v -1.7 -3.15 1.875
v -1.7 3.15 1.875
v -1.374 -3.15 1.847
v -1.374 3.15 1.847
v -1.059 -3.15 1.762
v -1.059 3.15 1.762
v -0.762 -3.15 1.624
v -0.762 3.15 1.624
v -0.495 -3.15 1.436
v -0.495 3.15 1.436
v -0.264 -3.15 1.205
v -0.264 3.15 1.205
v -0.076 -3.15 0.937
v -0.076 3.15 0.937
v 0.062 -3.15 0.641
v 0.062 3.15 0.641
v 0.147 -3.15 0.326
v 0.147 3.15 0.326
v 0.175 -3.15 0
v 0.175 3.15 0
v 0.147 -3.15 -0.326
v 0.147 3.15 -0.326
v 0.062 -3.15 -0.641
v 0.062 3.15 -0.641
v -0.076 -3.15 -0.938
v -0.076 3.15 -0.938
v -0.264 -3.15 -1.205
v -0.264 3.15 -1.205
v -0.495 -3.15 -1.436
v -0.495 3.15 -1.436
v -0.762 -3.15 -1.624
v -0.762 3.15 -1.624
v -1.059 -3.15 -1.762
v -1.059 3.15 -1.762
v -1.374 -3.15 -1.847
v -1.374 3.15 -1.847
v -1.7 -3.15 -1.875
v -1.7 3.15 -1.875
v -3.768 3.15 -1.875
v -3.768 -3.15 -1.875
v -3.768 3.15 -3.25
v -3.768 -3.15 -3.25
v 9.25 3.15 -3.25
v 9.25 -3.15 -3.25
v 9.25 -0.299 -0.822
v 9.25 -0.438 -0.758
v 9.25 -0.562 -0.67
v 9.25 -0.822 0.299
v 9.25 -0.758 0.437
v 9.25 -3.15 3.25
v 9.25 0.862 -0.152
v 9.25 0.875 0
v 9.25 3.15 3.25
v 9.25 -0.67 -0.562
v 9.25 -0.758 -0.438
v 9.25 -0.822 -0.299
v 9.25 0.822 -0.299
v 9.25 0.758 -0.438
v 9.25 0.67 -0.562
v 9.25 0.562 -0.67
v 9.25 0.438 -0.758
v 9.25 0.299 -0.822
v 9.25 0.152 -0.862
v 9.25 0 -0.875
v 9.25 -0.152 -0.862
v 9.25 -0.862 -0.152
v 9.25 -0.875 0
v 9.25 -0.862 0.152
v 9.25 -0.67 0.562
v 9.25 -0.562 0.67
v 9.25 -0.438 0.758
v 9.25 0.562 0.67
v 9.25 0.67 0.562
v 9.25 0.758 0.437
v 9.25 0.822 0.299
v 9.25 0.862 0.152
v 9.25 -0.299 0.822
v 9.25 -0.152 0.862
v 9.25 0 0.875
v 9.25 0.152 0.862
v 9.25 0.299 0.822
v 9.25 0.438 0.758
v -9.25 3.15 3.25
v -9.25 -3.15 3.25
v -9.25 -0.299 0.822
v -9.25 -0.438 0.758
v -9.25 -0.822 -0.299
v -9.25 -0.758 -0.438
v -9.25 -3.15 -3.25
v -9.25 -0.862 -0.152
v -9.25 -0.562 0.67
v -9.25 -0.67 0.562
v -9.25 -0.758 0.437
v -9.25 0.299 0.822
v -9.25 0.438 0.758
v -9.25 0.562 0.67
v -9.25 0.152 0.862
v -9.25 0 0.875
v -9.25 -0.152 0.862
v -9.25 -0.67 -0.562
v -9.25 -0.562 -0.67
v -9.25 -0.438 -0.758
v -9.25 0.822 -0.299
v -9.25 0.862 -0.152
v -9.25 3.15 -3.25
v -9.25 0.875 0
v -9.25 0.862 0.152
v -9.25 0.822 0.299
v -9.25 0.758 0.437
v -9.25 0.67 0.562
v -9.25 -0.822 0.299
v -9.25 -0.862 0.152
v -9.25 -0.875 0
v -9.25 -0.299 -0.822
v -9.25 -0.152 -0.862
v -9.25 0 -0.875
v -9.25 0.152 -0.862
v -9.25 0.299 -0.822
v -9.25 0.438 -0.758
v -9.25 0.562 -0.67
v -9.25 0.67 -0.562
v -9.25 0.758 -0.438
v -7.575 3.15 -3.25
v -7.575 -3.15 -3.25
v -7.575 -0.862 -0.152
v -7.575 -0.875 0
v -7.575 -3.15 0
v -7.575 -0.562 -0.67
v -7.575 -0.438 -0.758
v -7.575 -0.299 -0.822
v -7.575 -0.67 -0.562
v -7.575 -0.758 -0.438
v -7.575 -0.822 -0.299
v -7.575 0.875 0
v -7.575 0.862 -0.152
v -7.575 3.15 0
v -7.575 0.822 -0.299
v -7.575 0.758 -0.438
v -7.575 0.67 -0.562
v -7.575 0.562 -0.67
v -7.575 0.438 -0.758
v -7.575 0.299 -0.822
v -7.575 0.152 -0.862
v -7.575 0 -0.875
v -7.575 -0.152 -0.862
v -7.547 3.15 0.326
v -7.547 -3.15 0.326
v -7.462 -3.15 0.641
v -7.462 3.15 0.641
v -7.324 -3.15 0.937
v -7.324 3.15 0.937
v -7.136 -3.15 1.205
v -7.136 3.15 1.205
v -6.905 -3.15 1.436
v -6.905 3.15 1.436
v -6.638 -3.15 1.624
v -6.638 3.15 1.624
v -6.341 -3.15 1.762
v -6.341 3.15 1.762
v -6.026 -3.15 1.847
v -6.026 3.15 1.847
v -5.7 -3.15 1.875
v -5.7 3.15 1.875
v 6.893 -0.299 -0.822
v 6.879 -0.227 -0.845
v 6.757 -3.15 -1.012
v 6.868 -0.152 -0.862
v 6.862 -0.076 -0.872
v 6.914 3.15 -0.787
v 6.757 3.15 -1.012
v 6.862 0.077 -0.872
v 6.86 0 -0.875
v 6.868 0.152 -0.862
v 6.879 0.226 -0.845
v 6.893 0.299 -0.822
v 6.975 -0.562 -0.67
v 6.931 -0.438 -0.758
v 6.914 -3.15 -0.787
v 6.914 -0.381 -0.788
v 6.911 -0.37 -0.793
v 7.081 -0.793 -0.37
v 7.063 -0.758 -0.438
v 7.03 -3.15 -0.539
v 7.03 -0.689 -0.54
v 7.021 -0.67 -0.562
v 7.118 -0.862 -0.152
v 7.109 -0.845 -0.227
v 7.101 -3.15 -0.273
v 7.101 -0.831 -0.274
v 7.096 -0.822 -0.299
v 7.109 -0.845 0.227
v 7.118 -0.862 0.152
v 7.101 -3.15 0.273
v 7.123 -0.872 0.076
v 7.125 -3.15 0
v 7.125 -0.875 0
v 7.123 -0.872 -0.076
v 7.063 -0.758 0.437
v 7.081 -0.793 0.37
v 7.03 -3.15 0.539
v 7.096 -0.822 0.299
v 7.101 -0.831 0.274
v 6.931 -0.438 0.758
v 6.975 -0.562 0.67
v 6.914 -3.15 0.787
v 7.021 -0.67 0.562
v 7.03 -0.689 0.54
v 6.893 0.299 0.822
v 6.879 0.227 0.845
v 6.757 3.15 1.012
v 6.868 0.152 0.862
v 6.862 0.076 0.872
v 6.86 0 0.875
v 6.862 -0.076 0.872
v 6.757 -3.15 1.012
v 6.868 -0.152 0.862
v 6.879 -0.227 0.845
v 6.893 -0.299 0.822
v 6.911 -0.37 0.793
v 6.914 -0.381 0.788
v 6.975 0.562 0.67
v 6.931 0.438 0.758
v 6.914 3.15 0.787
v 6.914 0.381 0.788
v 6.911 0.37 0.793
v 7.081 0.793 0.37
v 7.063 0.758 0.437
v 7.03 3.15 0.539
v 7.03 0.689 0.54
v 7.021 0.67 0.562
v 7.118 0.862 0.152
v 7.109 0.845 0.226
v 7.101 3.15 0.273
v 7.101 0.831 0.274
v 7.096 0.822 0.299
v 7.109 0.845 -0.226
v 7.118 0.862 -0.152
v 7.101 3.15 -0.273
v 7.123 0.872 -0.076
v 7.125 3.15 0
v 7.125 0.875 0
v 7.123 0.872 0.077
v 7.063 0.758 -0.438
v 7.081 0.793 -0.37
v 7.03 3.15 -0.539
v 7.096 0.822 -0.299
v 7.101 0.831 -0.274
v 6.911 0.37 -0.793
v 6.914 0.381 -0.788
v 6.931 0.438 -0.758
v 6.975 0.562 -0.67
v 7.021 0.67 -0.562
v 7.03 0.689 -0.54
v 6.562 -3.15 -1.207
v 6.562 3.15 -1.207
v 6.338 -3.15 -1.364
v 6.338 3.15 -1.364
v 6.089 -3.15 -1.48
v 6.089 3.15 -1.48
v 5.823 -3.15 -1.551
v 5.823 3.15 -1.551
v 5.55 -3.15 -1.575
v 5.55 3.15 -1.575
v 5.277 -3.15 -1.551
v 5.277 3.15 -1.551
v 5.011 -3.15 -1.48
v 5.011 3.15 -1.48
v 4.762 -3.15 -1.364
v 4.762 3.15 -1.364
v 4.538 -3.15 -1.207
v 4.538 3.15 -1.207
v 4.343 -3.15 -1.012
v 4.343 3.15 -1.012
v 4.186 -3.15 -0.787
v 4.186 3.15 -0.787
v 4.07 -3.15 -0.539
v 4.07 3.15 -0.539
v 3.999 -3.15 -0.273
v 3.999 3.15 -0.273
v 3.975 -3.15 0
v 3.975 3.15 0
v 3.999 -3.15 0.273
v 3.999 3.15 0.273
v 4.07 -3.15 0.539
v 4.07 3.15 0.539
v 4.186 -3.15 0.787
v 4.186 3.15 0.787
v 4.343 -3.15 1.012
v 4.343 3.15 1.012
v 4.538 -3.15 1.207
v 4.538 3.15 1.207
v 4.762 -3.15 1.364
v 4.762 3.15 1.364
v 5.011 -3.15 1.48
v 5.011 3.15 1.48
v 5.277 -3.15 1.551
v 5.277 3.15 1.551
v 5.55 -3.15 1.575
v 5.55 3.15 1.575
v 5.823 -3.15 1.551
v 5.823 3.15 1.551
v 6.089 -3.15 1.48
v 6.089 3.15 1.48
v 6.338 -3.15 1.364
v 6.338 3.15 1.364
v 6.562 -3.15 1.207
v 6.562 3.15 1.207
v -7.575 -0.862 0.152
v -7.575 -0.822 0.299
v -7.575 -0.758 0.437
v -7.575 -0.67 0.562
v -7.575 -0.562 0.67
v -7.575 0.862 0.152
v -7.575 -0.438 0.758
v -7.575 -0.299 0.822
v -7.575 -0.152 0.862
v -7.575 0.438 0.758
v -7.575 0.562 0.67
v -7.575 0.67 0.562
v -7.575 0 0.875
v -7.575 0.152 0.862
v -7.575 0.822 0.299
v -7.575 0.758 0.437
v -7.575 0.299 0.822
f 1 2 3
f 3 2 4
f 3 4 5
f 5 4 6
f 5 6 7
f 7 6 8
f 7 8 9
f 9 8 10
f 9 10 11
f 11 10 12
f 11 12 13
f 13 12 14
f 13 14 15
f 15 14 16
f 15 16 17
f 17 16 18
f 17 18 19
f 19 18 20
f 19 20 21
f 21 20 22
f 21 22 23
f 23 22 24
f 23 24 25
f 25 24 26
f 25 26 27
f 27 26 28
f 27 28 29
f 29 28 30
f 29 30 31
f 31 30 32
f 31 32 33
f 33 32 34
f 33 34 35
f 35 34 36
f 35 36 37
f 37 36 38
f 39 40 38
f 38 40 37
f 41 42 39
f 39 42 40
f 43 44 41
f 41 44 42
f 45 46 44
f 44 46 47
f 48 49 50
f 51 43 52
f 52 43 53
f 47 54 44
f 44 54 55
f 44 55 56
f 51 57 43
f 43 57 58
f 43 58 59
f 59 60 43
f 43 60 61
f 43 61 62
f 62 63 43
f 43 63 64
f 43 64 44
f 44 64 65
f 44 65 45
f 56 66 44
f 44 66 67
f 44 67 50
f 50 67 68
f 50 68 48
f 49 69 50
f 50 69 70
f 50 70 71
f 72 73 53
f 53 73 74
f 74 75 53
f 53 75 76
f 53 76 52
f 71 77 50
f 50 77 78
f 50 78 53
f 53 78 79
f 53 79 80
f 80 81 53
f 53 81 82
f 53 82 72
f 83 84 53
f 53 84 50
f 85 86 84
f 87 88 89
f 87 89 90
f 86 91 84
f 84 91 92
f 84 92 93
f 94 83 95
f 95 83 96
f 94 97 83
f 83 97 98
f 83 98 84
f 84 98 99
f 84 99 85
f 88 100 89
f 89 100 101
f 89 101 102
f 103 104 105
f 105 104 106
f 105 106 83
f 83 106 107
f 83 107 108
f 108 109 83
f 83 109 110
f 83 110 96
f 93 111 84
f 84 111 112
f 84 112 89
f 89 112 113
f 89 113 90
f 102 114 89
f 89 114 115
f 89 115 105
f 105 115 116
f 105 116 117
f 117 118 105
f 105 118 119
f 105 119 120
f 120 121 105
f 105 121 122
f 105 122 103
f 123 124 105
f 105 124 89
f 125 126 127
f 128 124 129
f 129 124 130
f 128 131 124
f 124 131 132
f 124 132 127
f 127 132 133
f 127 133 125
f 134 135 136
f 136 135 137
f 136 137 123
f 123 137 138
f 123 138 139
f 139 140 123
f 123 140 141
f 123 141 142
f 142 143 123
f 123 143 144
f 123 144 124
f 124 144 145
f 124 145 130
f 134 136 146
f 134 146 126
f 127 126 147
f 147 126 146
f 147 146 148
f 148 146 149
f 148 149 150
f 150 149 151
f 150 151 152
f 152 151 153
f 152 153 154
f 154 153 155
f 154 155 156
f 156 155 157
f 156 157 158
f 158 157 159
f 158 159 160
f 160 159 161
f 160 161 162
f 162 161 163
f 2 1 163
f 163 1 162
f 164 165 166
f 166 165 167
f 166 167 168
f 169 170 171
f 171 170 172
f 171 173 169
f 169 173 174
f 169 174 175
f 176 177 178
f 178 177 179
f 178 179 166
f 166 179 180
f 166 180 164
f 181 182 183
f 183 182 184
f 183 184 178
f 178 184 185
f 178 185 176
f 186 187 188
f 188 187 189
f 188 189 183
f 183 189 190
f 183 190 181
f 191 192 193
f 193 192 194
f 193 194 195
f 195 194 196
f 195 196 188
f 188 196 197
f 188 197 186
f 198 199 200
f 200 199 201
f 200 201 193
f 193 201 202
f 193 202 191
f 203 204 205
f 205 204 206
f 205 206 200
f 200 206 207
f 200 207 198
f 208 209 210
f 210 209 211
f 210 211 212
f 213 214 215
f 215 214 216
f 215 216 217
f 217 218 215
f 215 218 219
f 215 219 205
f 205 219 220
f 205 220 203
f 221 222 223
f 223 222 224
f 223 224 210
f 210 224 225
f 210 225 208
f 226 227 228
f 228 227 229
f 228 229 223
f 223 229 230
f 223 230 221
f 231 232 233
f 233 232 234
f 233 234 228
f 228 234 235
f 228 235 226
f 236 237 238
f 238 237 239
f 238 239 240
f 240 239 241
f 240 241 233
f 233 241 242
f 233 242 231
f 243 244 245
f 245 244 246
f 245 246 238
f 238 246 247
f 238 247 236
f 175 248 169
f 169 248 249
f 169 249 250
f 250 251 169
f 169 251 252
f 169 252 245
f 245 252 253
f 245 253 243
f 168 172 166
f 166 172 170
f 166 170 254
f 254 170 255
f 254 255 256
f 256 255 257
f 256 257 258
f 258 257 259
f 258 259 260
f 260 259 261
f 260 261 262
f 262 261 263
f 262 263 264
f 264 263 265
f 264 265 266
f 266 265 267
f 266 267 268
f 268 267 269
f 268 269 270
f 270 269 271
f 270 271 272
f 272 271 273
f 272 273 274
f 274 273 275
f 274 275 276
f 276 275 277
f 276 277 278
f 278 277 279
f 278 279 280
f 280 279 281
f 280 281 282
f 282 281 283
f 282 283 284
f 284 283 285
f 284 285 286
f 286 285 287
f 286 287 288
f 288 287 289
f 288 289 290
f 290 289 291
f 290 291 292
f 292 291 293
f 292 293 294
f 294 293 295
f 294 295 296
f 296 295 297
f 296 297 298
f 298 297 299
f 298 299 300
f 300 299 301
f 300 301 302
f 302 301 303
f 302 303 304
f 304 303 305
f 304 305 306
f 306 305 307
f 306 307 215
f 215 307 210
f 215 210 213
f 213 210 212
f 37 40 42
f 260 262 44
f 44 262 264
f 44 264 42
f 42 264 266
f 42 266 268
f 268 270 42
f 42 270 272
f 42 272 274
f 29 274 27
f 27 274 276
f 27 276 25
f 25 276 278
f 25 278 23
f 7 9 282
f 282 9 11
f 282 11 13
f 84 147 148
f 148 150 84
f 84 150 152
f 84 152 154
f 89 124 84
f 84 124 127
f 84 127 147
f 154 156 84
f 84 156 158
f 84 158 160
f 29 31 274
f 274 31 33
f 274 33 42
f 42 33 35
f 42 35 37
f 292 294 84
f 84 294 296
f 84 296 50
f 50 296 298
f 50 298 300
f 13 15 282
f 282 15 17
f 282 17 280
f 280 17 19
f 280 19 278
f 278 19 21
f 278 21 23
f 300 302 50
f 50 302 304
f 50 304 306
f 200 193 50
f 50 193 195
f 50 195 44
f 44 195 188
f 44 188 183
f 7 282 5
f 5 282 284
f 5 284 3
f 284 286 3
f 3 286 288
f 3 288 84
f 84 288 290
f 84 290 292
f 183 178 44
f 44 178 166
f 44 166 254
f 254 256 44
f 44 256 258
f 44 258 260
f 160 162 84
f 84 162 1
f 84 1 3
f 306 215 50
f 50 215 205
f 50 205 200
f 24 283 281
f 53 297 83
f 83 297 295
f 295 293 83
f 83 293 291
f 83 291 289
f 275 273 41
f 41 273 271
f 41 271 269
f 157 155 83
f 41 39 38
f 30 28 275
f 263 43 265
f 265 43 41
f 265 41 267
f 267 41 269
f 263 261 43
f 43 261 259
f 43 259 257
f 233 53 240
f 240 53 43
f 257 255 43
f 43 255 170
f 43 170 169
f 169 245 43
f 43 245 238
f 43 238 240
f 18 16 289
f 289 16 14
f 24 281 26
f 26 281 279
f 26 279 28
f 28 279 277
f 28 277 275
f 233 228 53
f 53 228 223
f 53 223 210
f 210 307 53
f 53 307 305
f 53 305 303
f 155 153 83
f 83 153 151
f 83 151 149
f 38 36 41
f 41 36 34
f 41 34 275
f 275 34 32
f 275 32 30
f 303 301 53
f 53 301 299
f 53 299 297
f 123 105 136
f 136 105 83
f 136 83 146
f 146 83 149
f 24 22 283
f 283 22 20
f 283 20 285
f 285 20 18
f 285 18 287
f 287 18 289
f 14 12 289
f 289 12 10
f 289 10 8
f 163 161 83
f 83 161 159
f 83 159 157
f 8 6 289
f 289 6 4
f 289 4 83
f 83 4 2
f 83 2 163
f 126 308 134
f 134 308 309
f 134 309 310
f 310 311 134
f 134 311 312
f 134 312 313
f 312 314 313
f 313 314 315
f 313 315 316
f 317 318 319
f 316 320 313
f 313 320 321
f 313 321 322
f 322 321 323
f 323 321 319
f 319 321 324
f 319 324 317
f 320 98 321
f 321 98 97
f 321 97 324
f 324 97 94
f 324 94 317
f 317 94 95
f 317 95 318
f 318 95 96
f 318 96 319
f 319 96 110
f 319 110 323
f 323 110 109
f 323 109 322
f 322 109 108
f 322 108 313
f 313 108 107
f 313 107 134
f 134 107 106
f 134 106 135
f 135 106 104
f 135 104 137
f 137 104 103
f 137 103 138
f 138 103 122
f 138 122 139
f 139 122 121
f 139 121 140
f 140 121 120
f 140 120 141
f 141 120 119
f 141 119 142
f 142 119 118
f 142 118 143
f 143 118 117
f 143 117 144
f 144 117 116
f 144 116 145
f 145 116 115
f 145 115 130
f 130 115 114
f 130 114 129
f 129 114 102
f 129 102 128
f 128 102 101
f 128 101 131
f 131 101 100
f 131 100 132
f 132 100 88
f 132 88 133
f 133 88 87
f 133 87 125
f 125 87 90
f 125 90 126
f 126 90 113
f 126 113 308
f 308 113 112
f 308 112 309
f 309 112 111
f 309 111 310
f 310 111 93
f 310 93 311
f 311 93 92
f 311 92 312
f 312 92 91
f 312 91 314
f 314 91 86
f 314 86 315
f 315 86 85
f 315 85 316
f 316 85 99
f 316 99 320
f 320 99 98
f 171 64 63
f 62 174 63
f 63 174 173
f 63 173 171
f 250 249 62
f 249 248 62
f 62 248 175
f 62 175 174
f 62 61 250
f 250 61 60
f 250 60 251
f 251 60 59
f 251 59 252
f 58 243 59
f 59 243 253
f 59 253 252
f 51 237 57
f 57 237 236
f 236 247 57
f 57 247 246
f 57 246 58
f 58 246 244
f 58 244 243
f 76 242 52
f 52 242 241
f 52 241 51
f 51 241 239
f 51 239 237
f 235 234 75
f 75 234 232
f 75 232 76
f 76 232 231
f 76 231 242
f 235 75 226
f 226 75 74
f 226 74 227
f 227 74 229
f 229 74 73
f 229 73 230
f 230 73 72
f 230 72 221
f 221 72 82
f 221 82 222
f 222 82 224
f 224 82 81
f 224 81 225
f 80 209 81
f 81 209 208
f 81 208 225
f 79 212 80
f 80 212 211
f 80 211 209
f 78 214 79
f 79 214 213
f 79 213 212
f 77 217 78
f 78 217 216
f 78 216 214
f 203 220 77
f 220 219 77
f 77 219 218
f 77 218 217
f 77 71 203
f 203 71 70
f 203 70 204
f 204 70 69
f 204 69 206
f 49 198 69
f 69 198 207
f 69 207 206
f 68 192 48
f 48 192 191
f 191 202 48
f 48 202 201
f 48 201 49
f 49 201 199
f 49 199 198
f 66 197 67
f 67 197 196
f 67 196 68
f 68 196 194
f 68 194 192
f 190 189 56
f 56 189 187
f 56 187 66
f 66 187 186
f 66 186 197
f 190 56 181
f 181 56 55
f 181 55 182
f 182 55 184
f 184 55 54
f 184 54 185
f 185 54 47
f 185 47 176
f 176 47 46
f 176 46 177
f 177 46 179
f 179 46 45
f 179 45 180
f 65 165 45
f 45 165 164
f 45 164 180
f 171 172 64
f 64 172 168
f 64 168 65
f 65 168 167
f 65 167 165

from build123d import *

# Parameters (mm, degrees)
SKETCH1_R                   = 1.575
BOSS_EXTRUDE1_DEPTH         = 3.15
BOSS_EXTRUDE1_DEPTH_BACK    = 3.15
M2X0_25_TAPPED_HOLE1_D      = 1.75
M2X0_25_TAPPED_HOLE1_DEPTH  = 1.675
M2X0_25_TAPPED_HOLE2_REACH  = 21.046
M2X0_25_TAPPED_HOLE2_BORE_R = 0.875


with BuildPart() as part:
    # Sketch1 → Boss-Extrude1 (new, two sides)
    with BuildSketch(Plane(origin=(0, 0, 0), x_dir=(1, 0, 0), z_dir=(0, 1, 0))) as boss_extrude1_sk:
        with BuildLine():
            Line((-7.575, 3.25), (-9.25, 3.25))
            Line((-9.25, 3.25), (-9.25, -3.25))
            Line((-9.25, -3.25), (9.25, -3.25))
            Line((9.25, -3.25), (9.25, 3.25))
            Line((9.25, 3.25), (-3.76833041, 3.25))
            Line((-3.76833041, 3.25), (-3.76833041, 1.875))
            Line((-3.76833041, 1.875), (-1.7, 1.875))
            ThreePointArc((-1.7, 1.875), (0.175, 0), (-1.7, -1.875))
            Line((-1.7, -1.875), (-5.7, -1.875))
            ThreePointArc((-5.7, -1.875), (-7.025825215, -1.325825215), (-7.575, 0))
            Line((-7.575, 0), (-7.575, 3.25))
        make_face()
        with Locations(Location((5.55, 0, 0), (0, 0, 270))):
            Circle(SKETCH1_R, mode=Mode.SUBTRACT)
    extrude(amount=BOSS_EXTRUDE1_DEPTH)
    extrude(boss_extrude1_sk.sketch, amount=-BOSS_EXTRUDE1_DEPTH_BACK)

    # M2x0.25 Tapped Hole1
    with Locations(Plane.ZY.offset(9.25)):
        with Locations((0, 0)):
            Hole(M2X0_25_TAPPED_HOLE1_D / 2, depth=M2X0_25_TAPPED_HOLE1_DEPTH)

    # M2x0.25 Tapped Hole2 bore → M2x0.25 Tapped Hole2 (cut, up to next)
    with BuildSketch(Plane(origin=(9.25, 0, 0), x_dir=(0, 0, -1), z_dir=(1, 0, 0)), mode=Mode.PRIVATE) as m2x0_25_tapped_hole2_sk1:
        Circle(M2X0_25_TAPPED_HOLE2_BORE_R)
    m2x0_25_tapped_hole2_tool1 = extrude(m2x0_25_tapped_hole2_sk1.sketch, amount=-M2X0_25_TAPPED_HOLE2_REACH, mode=Mode.PRIVATE) & part.part
    add(m2x0_25_tapped_hole2_tool1.solids().sort_by_distance((9.25, 0, 0))[0], mode=Mode.SUBTRACT)


solid = part.part
